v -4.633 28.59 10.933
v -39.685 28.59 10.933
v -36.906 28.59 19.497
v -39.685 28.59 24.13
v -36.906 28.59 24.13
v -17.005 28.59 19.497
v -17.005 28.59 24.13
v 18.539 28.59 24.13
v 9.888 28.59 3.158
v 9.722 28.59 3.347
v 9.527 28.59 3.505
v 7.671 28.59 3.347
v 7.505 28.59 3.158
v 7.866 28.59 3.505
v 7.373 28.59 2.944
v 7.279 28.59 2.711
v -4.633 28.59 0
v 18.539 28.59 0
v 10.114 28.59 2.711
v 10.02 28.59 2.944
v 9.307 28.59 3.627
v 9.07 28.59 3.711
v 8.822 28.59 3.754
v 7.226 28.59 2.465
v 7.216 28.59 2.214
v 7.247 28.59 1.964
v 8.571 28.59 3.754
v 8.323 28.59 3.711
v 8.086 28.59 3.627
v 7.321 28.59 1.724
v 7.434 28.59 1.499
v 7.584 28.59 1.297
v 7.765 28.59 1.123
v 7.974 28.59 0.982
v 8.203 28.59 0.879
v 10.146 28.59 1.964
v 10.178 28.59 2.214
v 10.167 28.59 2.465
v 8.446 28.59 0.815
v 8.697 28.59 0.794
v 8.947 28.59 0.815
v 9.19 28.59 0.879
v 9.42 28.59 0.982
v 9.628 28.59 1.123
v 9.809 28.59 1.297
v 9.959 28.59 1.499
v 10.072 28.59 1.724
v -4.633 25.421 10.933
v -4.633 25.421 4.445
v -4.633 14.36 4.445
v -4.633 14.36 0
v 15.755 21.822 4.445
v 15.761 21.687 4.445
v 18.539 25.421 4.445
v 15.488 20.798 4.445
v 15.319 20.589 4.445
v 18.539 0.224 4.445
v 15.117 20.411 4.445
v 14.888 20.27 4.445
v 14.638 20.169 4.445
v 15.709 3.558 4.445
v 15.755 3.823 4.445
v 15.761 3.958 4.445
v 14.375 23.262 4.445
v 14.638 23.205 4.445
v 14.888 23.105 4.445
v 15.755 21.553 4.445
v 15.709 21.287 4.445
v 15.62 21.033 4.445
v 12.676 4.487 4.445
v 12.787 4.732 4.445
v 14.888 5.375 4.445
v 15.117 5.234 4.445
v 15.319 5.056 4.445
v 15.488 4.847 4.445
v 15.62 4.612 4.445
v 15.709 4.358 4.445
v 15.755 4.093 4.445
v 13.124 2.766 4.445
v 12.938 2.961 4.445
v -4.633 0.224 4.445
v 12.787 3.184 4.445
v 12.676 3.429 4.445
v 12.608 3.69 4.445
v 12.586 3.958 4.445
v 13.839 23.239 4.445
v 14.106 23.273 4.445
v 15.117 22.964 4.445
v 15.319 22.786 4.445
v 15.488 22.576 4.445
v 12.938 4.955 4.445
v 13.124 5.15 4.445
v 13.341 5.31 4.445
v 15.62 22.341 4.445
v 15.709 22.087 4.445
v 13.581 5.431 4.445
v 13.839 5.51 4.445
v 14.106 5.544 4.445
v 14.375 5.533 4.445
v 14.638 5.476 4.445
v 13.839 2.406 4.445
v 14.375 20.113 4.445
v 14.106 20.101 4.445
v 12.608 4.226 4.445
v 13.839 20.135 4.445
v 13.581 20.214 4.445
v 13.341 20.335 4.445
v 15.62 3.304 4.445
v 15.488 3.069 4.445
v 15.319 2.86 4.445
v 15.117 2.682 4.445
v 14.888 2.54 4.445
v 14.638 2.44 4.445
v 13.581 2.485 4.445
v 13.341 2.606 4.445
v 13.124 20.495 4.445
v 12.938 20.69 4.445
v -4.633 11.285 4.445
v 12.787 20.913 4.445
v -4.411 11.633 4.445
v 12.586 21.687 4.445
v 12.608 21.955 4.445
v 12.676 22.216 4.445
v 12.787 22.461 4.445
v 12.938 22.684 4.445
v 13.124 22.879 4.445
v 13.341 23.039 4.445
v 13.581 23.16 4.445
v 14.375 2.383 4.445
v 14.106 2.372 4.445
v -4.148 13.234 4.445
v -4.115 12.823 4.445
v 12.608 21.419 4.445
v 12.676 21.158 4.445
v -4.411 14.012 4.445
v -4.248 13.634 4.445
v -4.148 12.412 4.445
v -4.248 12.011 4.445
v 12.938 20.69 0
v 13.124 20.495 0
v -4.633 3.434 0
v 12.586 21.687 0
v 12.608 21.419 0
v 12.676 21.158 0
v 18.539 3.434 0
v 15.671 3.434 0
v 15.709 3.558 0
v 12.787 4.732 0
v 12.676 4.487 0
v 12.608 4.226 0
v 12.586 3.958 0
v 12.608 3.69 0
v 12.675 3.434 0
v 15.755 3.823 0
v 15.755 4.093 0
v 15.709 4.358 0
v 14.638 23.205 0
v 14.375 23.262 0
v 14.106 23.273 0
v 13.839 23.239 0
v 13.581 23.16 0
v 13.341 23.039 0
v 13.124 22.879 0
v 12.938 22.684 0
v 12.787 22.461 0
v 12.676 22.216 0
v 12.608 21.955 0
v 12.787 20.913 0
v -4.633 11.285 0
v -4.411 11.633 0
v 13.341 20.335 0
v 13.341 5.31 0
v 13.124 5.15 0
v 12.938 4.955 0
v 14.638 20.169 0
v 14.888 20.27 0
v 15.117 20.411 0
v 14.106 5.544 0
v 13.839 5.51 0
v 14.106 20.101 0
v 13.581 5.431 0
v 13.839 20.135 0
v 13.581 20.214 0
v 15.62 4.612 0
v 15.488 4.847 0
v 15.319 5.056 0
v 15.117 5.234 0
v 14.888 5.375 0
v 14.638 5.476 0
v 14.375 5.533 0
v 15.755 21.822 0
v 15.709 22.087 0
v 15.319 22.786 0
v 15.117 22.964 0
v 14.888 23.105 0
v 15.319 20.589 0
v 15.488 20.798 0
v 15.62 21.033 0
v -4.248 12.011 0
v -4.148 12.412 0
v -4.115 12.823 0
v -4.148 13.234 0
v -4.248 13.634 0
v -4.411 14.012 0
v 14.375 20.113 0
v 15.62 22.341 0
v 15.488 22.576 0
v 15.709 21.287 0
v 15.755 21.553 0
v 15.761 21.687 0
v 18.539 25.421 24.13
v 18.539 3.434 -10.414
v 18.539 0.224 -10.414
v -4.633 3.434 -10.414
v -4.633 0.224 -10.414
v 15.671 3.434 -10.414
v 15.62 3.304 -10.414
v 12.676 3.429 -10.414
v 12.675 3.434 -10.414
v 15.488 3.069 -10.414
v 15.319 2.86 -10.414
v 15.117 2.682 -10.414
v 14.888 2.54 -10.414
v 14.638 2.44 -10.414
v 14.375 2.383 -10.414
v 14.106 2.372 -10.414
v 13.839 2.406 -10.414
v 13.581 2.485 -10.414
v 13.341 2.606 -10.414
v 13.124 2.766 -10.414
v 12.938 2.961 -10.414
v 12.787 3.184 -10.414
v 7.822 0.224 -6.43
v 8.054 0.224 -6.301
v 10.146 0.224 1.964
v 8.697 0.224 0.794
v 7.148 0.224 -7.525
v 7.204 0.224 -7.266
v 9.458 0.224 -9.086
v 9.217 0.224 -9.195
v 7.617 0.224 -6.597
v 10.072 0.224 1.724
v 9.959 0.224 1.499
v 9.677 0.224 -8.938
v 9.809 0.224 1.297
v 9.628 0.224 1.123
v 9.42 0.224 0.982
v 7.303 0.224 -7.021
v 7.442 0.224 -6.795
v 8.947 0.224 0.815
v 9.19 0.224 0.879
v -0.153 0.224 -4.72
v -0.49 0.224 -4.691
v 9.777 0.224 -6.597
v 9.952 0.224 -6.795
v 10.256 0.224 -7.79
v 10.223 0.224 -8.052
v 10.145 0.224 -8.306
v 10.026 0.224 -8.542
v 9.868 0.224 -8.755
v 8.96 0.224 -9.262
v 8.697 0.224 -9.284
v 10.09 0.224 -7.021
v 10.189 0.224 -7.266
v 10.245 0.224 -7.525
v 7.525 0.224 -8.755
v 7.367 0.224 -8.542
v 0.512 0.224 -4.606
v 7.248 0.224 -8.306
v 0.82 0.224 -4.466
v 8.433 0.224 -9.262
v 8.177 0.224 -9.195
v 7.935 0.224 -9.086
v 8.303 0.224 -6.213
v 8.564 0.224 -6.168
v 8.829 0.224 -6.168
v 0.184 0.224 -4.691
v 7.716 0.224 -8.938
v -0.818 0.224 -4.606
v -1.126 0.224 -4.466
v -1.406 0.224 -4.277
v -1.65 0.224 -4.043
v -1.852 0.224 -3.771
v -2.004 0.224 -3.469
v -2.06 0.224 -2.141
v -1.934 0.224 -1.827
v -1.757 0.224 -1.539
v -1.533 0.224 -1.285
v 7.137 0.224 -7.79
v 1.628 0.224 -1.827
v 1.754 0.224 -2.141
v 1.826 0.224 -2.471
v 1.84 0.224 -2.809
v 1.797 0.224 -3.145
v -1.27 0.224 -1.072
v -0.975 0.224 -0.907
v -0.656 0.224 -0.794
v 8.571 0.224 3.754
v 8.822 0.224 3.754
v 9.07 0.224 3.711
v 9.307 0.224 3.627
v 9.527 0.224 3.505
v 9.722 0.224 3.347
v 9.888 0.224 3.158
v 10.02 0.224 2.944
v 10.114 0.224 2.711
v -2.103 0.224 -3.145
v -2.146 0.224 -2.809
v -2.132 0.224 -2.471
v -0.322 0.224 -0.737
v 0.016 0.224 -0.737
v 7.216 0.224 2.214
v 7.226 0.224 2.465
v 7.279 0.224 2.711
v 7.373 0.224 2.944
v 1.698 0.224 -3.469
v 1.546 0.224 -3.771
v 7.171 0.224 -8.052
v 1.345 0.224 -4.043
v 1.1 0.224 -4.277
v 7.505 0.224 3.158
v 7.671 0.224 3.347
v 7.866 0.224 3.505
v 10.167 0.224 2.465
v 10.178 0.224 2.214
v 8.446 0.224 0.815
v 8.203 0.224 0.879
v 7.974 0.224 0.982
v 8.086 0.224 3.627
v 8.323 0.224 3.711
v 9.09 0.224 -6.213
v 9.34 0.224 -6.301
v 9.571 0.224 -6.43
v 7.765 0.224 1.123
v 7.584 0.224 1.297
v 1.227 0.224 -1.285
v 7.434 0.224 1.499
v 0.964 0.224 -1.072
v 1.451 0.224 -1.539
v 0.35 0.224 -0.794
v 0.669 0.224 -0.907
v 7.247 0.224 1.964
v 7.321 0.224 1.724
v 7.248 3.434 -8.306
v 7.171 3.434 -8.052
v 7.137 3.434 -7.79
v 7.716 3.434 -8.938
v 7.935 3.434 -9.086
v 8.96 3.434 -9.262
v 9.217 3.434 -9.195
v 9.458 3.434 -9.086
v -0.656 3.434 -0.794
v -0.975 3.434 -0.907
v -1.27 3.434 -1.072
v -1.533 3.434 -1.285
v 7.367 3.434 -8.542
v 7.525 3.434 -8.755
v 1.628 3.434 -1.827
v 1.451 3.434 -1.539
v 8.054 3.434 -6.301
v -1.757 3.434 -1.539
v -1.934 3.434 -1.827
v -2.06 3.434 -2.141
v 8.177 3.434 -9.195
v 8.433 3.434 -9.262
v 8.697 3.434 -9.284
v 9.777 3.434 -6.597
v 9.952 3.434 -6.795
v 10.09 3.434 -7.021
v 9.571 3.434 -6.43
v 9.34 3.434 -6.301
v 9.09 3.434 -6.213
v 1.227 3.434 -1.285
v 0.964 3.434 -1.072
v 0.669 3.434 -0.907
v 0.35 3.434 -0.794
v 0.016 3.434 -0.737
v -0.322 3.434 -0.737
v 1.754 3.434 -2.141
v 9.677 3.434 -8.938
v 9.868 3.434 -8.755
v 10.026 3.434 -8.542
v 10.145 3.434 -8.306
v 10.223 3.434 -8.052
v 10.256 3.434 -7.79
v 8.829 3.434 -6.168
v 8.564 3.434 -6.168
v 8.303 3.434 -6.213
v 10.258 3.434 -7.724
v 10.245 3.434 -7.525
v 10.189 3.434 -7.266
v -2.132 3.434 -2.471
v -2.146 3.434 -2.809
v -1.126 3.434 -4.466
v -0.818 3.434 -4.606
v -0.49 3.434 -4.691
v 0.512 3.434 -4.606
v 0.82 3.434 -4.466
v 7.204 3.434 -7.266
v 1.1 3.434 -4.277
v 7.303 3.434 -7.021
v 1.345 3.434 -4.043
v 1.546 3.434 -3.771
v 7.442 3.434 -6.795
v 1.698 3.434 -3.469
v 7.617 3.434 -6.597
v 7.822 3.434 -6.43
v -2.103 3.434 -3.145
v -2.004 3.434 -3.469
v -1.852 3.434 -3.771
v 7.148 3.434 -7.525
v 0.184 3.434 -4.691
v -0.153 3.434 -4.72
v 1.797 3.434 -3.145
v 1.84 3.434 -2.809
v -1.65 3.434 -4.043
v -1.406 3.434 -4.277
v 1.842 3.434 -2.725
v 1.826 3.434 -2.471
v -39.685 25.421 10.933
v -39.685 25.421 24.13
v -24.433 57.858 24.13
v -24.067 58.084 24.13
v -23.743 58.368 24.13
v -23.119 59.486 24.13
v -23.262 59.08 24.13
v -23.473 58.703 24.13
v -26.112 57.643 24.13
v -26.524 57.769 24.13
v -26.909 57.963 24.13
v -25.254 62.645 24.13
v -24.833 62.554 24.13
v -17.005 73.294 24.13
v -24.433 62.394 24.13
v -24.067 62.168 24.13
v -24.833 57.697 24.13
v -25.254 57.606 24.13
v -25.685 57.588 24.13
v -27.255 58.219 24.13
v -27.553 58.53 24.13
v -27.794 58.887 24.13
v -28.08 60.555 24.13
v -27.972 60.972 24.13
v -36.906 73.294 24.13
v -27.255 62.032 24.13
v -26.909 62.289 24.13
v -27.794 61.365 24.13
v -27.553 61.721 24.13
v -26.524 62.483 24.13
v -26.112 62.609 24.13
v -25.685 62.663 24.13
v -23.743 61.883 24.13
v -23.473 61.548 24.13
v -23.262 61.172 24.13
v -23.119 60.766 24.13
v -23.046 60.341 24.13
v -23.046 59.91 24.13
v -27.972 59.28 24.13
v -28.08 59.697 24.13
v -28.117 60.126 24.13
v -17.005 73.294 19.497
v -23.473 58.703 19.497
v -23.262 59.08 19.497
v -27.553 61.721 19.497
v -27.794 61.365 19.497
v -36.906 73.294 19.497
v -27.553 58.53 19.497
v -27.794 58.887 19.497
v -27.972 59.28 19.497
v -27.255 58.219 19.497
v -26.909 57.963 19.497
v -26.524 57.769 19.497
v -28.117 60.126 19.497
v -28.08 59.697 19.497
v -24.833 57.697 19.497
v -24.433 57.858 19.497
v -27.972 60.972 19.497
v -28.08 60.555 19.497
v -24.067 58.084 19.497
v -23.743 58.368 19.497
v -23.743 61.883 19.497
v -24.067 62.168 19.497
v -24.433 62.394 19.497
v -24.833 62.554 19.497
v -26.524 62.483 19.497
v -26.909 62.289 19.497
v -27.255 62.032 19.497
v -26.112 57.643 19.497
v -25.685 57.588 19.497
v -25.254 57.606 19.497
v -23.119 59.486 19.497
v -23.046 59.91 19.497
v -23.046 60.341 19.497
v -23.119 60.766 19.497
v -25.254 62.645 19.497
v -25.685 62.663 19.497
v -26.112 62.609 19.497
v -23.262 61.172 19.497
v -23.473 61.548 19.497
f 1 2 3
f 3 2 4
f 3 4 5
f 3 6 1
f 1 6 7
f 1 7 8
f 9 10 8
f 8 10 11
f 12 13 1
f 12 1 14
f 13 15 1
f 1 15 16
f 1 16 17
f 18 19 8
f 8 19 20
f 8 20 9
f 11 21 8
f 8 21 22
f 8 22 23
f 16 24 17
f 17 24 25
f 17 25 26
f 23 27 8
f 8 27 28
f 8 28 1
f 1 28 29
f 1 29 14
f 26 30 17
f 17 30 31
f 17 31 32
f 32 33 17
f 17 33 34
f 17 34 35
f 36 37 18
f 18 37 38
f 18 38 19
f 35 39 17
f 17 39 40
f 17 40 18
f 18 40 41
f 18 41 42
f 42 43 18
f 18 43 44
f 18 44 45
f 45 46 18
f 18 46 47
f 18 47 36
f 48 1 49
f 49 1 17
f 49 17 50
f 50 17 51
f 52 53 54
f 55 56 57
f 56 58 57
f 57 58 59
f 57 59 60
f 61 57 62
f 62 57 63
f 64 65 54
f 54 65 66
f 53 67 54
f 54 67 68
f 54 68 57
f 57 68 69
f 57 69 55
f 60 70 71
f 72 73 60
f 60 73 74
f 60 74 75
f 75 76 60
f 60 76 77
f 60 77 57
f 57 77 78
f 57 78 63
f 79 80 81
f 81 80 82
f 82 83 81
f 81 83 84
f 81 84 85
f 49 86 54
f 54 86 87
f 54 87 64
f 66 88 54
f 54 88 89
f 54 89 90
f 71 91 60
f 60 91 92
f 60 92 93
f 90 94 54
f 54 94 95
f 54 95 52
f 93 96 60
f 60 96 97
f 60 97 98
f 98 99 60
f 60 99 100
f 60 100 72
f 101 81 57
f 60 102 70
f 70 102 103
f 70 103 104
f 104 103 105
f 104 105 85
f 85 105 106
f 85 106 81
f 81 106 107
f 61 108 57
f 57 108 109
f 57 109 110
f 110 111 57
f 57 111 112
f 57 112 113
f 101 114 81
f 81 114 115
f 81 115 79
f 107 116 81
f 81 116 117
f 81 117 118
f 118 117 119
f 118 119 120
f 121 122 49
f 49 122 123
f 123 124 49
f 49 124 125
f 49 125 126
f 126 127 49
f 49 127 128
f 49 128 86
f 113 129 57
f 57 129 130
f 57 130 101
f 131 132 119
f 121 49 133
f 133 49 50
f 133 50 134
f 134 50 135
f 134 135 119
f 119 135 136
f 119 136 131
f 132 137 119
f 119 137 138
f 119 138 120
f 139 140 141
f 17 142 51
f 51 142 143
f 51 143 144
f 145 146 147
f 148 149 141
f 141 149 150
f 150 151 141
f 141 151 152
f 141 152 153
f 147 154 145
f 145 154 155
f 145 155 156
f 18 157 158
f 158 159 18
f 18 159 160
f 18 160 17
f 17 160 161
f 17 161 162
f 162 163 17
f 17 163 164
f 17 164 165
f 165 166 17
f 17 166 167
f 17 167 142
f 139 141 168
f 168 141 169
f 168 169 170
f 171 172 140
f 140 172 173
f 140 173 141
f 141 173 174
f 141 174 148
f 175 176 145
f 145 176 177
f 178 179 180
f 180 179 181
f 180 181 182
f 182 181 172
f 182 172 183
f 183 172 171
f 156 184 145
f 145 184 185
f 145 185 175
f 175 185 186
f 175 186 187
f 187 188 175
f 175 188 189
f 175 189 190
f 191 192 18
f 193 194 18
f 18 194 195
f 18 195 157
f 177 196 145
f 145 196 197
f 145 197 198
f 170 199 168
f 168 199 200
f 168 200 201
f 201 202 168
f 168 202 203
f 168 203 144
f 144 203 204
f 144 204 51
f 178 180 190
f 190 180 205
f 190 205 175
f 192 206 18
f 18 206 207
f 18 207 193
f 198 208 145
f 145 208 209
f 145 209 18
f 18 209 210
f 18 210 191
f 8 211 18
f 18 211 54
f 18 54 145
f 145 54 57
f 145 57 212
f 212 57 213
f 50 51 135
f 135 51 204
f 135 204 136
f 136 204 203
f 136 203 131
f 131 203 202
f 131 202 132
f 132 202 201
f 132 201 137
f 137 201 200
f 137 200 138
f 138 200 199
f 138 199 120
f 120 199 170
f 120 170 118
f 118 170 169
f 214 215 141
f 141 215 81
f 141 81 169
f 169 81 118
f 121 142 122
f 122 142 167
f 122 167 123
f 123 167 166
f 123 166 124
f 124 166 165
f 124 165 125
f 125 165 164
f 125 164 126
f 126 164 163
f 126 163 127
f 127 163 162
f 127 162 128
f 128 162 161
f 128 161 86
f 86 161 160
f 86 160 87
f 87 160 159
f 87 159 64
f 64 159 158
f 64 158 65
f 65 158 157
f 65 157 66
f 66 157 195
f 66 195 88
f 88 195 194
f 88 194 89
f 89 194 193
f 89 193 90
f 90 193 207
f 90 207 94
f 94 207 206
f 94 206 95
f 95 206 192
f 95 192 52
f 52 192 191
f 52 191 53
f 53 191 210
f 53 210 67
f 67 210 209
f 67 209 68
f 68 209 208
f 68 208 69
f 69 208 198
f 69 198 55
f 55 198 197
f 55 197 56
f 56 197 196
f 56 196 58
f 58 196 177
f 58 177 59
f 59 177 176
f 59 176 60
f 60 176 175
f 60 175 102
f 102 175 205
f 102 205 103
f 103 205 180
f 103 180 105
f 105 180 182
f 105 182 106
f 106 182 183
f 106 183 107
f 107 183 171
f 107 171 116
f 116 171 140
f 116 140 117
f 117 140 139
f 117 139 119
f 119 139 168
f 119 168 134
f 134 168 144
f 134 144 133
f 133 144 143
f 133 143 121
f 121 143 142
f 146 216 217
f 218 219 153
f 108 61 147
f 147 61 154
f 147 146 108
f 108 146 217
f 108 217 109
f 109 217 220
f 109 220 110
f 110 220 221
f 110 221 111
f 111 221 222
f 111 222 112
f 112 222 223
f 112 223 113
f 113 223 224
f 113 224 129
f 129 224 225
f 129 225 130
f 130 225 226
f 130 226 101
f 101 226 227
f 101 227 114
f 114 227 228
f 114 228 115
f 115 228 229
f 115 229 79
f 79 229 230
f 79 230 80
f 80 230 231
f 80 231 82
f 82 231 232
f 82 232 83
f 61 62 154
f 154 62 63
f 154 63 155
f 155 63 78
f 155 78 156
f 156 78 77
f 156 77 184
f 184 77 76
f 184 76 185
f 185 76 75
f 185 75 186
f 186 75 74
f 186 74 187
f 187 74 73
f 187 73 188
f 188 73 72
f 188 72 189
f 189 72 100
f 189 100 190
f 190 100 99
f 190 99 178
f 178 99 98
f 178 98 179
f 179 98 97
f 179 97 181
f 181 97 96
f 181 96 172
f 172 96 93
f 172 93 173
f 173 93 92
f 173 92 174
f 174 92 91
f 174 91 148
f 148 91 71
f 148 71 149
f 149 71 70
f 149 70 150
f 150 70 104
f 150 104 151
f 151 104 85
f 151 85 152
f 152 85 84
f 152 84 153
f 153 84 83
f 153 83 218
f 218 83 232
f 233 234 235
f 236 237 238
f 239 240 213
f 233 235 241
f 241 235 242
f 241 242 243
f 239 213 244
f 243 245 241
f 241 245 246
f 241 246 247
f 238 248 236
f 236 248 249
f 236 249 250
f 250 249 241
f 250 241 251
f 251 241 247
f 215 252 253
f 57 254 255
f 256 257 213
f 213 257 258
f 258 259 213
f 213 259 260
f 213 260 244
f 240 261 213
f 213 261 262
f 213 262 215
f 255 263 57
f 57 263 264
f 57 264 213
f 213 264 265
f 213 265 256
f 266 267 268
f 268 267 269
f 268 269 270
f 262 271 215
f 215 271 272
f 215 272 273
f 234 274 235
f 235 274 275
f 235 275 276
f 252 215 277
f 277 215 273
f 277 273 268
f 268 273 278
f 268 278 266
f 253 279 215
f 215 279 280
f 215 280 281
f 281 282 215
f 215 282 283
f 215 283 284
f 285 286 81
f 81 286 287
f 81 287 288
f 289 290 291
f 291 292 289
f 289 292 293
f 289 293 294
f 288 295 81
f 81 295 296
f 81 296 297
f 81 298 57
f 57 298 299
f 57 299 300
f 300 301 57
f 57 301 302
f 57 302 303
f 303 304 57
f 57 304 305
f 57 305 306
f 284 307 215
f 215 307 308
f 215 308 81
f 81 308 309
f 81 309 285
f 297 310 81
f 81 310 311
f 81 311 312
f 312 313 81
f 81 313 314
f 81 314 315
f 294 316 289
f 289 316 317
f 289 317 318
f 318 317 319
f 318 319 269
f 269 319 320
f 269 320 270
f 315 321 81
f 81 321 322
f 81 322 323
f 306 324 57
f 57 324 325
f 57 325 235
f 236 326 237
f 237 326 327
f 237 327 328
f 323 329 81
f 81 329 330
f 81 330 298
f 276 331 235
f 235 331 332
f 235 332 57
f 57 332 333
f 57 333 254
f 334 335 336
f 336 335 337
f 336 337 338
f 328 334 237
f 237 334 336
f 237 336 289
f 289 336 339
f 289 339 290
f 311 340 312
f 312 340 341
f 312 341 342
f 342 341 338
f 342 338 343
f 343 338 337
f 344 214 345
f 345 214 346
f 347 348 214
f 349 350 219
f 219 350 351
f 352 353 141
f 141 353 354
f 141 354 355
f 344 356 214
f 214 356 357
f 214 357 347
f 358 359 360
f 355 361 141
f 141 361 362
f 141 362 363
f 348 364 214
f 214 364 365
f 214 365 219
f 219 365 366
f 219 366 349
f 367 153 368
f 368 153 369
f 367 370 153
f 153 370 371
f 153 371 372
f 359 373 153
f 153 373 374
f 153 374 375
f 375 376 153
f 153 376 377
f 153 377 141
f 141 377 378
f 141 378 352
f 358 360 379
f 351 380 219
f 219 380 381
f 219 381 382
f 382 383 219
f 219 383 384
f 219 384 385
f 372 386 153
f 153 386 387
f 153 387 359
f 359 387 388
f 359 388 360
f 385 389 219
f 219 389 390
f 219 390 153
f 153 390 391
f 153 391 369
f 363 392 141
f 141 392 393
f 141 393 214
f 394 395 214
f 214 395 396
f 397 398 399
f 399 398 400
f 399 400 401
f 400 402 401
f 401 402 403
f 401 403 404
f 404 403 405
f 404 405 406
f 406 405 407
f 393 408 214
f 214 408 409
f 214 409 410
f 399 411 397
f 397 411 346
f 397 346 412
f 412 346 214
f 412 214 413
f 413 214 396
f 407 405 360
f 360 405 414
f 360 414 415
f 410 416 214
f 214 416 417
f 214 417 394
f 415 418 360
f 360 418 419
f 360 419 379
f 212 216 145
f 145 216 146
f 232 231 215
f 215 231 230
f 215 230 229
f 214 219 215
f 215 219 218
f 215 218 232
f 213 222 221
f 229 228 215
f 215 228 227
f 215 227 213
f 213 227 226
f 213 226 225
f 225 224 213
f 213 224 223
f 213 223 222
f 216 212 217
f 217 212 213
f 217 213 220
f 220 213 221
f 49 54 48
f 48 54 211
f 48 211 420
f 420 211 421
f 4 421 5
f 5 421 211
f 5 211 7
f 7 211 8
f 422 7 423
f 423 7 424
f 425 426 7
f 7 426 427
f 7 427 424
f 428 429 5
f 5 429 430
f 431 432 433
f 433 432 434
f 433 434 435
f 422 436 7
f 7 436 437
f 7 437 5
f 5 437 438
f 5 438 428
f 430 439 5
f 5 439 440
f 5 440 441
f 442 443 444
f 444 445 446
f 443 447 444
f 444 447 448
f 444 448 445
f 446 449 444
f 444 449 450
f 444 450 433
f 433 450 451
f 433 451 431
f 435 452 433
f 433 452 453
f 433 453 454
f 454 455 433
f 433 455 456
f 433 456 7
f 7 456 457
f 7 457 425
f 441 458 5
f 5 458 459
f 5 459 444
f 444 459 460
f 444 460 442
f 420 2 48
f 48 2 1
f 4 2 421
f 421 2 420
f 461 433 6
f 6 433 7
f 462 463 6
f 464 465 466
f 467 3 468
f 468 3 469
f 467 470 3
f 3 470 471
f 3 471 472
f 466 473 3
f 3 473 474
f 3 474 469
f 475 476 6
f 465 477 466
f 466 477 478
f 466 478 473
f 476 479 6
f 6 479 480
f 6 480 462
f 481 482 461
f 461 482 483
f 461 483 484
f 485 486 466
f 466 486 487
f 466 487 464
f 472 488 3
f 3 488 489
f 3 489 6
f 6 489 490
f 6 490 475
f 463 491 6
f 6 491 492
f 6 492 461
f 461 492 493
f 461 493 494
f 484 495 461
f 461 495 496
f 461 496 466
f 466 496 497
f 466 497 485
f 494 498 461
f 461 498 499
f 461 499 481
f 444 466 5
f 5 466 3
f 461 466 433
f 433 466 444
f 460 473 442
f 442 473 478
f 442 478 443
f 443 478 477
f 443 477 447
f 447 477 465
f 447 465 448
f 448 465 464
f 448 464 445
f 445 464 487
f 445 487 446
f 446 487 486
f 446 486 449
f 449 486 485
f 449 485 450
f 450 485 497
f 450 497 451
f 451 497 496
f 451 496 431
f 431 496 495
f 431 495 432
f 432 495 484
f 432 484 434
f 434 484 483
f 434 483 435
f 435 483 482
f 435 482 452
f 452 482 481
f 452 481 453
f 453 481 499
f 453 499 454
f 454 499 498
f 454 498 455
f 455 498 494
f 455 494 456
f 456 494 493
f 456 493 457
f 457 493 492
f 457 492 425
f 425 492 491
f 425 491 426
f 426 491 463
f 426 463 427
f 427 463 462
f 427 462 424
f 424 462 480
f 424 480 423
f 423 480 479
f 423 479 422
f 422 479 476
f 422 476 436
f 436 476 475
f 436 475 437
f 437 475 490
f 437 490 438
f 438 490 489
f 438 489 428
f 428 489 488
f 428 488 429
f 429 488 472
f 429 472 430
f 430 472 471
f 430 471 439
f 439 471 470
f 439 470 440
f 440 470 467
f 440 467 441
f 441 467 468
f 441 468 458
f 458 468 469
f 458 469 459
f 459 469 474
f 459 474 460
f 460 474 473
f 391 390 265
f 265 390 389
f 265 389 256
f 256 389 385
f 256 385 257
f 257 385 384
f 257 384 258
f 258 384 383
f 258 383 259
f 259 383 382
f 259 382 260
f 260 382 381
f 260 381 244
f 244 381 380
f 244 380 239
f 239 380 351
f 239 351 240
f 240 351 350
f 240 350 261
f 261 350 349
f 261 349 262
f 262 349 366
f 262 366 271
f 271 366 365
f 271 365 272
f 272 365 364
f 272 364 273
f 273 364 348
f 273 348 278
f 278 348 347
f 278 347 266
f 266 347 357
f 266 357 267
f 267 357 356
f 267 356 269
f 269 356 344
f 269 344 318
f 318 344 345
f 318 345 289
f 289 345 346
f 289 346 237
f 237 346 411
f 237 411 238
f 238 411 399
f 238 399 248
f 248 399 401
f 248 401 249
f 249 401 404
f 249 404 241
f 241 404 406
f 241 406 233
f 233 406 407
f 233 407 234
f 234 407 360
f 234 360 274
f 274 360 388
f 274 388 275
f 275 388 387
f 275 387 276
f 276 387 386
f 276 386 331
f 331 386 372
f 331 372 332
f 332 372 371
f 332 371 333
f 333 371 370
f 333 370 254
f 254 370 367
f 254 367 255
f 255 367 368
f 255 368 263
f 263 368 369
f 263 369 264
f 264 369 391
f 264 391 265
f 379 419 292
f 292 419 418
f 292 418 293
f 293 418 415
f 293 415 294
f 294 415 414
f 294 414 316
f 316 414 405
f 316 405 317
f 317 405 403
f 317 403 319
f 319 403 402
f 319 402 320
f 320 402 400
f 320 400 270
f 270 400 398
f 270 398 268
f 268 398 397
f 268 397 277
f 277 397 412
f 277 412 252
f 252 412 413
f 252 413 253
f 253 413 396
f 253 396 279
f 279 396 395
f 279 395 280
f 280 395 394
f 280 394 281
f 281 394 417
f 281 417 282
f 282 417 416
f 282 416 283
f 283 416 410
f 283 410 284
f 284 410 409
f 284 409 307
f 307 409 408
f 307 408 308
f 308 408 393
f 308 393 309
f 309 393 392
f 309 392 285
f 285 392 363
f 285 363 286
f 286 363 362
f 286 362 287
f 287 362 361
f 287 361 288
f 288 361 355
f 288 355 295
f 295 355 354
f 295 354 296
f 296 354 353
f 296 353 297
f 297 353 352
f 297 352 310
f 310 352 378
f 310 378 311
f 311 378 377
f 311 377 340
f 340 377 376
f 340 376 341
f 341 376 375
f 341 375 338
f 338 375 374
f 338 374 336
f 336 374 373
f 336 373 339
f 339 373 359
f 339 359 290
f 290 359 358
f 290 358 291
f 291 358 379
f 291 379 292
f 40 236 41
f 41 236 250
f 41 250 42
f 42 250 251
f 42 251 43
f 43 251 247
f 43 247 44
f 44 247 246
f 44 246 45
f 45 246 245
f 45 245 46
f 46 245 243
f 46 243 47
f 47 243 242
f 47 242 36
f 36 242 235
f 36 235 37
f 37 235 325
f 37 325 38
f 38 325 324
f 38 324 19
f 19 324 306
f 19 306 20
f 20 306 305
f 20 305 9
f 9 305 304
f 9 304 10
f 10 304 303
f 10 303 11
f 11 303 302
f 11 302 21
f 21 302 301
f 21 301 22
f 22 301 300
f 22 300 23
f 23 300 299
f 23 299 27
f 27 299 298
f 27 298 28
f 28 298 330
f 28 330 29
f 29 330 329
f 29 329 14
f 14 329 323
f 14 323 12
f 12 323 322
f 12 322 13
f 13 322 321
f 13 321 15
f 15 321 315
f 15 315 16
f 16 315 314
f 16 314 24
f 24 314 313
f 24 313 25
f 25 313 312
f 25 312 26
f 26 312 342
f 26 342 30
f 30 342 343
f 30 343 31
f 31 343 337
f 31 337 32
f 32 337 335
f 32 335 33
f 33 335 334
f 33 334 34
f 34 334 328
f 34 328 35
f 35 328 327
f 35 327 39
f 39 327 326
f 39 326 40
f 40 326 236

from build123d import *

# Parameters (mm, degrees)
SKETCH1_R           = 1.5875
BOSS_EXTRUDE1_DEPTH = 4.445
BOSS_EXTRUDE2_START = 10.414
BOSS_EXTRUDE2_DEPTH = 10.414
SKETCH1_6_W         = 23.172043576
SKETCH1_6_H         = 3.169044436
BOSS_EXTRUDE3_DEPTH = 24.13
SKETCH4_W           = 13.196572836
SKETCH4_H           = 3.169044436
BOSS_EXTRUDE4_DEPTH = 35.052
SKETCH5_W           = 19.900905811
SKETCH5_H           = 4.632500987
BOSS_EXTRUDE5_DEPTH = 44.704
SKETCH6_R           = 2.54
CUT_EXTRUDE1_DEPTH  = 89.552863771
SKETCH7_R           = 1.994892348
SKETCH7_R_2         = 1.482380007
SKETCH7_R_3         = 1.560959408
CUT_EXTRUDE2_DEPTH  = 87.581521828


with BuildPart() as part:
    # Sketch1 → Boss-Extrude1 (new body)
    with BuildSketch(Plane.XY):
        with BuildLine():
            Line((18.539023024, 28.590004207), (-4.633020552, 28.590004207))
            Line((-4.633020552, 28.590004207), (-4.633020552, 14.359873942))
            ThreePointArc((-4.633020552, 14.359873942), (-4.114966432, 12.822559771), (-4.633020552, 11.2852456))
            Line((-4.633020552, 11.2852456), (-4.633020552, 0.224159771))
            Line((-4.633020552, 0.224159771), (18.539023024, 0.224159771))
            Line((18.539023024, 0.224159771), (18.539023024, 28.590004207))
        make_face()
        with Locations((14.173033568, 21.687159771)):
            Circle(SKETCH1_R, mode=Mode.SUBTRACT)
        with Locations((14.173033568, 3.957959771)):
            Circle(SKETCH1_R, mode=Mode.SUBTRACT)
    extrude(amount=BOSS_EXTRUDE1_DEPTH)

    # Sketch2 → Boss-Extrude2 (add)
    with BuildSketch(Plane(origin=(0, 0, 0), x_dir=(-1, 0, 0), z_dir=(0, 0, -1)).offset(BOSS_EXTRUDE2_START)):
        with BuildLine():
            Line((-18.539023024, 3.433695859), (-15.671467284, 3.433695859))
            ThreePointArc((-15.671467284, 3.433695859), (-14.173033568, 2.370459771), (-12.674599853, 3.433695859))
            Line((-12.674599853, 3.433695859), (4.633020552, 3.433695859))
            Line((4.633020552, 3.433695859), (4.633020552, 0.224159771))
            Line((4.633020552, 0.224159771), (-18.539023024, 0.224159771))
            Line((-18.539023024, 0.224159771), (-18.539023024, 3.433695859))
        make_face()
    extrude(amount=-BOSS_EXTRUDE2_DEPTH)

    # Sketch1<6> → Boss-Extrude3 (add)
    with BuildSketch(Plane.XY):
        with Locations((6.953001236, 27.005481989)):
            Rectangle(SKETCH1_6_W, SKETCH1_6_H)
    extrude(amount=BOSS_EXTRUDE3_DEPTH)

    # Sketch4 → Boss-Extrude4 (add)
    with BuildSketch(Plane.ZY.offset(4.633020552)):
        with Locations((17.531713582, 27.005481989)):
            Rectangle(SKETCH4_W, SKETCH4_H)
    extrude(amount=BOSS_EXTRUDE4_DEPTH)

    # Sketch5 → Boss-Extrude5 (add)
    with BuildSketch(Plane(origin=(0, 28.590004207, 0), x_dir=(1, 0, 0), z_dir=(0, 1, 0))):
        with Locations((-26.955814506, -21.813749507)):
            Rectangle(SKETCH5_W, SKETCH5_H)
    extrude(amount=BOSS_EXTRUDE5_DEPTH)

    # Sketch6 → Cut-Extrude1 (cut, through all)
    with BuildSketch(Plane(origin=(0, 0, 19.497499013), x_dir=(-1, 0, 0), z_dir=(0, 0, -1))):
        with Locations((25.576990215, 60.125767425)):
            Circle(SKETCH6_R)
    extrude(amount=-CUT_EXTRUDE1_DEPTH, mode=Mode.SUBTRACT)

    # Sketch7 → Cut-Extrude2 (cut, through all)
    with BuildSketch(Plane.XZ.offset(-0.224159771)):
        with Locations((-0.152967162, -2.724793136)):
            Circle(SKETCH7_R)
        with Locations((8.696595836, 2.276499013)):
            Circle(SKETCH7_R_2)
        with Locations((8.696595836, -7.723500987)):
            Circle(SKETCH7_R_3)
    extrude(amount=-CUT_EXTRUDE2_DEPTH, mode=Mode.SUBTRACT)


solid = part.part
